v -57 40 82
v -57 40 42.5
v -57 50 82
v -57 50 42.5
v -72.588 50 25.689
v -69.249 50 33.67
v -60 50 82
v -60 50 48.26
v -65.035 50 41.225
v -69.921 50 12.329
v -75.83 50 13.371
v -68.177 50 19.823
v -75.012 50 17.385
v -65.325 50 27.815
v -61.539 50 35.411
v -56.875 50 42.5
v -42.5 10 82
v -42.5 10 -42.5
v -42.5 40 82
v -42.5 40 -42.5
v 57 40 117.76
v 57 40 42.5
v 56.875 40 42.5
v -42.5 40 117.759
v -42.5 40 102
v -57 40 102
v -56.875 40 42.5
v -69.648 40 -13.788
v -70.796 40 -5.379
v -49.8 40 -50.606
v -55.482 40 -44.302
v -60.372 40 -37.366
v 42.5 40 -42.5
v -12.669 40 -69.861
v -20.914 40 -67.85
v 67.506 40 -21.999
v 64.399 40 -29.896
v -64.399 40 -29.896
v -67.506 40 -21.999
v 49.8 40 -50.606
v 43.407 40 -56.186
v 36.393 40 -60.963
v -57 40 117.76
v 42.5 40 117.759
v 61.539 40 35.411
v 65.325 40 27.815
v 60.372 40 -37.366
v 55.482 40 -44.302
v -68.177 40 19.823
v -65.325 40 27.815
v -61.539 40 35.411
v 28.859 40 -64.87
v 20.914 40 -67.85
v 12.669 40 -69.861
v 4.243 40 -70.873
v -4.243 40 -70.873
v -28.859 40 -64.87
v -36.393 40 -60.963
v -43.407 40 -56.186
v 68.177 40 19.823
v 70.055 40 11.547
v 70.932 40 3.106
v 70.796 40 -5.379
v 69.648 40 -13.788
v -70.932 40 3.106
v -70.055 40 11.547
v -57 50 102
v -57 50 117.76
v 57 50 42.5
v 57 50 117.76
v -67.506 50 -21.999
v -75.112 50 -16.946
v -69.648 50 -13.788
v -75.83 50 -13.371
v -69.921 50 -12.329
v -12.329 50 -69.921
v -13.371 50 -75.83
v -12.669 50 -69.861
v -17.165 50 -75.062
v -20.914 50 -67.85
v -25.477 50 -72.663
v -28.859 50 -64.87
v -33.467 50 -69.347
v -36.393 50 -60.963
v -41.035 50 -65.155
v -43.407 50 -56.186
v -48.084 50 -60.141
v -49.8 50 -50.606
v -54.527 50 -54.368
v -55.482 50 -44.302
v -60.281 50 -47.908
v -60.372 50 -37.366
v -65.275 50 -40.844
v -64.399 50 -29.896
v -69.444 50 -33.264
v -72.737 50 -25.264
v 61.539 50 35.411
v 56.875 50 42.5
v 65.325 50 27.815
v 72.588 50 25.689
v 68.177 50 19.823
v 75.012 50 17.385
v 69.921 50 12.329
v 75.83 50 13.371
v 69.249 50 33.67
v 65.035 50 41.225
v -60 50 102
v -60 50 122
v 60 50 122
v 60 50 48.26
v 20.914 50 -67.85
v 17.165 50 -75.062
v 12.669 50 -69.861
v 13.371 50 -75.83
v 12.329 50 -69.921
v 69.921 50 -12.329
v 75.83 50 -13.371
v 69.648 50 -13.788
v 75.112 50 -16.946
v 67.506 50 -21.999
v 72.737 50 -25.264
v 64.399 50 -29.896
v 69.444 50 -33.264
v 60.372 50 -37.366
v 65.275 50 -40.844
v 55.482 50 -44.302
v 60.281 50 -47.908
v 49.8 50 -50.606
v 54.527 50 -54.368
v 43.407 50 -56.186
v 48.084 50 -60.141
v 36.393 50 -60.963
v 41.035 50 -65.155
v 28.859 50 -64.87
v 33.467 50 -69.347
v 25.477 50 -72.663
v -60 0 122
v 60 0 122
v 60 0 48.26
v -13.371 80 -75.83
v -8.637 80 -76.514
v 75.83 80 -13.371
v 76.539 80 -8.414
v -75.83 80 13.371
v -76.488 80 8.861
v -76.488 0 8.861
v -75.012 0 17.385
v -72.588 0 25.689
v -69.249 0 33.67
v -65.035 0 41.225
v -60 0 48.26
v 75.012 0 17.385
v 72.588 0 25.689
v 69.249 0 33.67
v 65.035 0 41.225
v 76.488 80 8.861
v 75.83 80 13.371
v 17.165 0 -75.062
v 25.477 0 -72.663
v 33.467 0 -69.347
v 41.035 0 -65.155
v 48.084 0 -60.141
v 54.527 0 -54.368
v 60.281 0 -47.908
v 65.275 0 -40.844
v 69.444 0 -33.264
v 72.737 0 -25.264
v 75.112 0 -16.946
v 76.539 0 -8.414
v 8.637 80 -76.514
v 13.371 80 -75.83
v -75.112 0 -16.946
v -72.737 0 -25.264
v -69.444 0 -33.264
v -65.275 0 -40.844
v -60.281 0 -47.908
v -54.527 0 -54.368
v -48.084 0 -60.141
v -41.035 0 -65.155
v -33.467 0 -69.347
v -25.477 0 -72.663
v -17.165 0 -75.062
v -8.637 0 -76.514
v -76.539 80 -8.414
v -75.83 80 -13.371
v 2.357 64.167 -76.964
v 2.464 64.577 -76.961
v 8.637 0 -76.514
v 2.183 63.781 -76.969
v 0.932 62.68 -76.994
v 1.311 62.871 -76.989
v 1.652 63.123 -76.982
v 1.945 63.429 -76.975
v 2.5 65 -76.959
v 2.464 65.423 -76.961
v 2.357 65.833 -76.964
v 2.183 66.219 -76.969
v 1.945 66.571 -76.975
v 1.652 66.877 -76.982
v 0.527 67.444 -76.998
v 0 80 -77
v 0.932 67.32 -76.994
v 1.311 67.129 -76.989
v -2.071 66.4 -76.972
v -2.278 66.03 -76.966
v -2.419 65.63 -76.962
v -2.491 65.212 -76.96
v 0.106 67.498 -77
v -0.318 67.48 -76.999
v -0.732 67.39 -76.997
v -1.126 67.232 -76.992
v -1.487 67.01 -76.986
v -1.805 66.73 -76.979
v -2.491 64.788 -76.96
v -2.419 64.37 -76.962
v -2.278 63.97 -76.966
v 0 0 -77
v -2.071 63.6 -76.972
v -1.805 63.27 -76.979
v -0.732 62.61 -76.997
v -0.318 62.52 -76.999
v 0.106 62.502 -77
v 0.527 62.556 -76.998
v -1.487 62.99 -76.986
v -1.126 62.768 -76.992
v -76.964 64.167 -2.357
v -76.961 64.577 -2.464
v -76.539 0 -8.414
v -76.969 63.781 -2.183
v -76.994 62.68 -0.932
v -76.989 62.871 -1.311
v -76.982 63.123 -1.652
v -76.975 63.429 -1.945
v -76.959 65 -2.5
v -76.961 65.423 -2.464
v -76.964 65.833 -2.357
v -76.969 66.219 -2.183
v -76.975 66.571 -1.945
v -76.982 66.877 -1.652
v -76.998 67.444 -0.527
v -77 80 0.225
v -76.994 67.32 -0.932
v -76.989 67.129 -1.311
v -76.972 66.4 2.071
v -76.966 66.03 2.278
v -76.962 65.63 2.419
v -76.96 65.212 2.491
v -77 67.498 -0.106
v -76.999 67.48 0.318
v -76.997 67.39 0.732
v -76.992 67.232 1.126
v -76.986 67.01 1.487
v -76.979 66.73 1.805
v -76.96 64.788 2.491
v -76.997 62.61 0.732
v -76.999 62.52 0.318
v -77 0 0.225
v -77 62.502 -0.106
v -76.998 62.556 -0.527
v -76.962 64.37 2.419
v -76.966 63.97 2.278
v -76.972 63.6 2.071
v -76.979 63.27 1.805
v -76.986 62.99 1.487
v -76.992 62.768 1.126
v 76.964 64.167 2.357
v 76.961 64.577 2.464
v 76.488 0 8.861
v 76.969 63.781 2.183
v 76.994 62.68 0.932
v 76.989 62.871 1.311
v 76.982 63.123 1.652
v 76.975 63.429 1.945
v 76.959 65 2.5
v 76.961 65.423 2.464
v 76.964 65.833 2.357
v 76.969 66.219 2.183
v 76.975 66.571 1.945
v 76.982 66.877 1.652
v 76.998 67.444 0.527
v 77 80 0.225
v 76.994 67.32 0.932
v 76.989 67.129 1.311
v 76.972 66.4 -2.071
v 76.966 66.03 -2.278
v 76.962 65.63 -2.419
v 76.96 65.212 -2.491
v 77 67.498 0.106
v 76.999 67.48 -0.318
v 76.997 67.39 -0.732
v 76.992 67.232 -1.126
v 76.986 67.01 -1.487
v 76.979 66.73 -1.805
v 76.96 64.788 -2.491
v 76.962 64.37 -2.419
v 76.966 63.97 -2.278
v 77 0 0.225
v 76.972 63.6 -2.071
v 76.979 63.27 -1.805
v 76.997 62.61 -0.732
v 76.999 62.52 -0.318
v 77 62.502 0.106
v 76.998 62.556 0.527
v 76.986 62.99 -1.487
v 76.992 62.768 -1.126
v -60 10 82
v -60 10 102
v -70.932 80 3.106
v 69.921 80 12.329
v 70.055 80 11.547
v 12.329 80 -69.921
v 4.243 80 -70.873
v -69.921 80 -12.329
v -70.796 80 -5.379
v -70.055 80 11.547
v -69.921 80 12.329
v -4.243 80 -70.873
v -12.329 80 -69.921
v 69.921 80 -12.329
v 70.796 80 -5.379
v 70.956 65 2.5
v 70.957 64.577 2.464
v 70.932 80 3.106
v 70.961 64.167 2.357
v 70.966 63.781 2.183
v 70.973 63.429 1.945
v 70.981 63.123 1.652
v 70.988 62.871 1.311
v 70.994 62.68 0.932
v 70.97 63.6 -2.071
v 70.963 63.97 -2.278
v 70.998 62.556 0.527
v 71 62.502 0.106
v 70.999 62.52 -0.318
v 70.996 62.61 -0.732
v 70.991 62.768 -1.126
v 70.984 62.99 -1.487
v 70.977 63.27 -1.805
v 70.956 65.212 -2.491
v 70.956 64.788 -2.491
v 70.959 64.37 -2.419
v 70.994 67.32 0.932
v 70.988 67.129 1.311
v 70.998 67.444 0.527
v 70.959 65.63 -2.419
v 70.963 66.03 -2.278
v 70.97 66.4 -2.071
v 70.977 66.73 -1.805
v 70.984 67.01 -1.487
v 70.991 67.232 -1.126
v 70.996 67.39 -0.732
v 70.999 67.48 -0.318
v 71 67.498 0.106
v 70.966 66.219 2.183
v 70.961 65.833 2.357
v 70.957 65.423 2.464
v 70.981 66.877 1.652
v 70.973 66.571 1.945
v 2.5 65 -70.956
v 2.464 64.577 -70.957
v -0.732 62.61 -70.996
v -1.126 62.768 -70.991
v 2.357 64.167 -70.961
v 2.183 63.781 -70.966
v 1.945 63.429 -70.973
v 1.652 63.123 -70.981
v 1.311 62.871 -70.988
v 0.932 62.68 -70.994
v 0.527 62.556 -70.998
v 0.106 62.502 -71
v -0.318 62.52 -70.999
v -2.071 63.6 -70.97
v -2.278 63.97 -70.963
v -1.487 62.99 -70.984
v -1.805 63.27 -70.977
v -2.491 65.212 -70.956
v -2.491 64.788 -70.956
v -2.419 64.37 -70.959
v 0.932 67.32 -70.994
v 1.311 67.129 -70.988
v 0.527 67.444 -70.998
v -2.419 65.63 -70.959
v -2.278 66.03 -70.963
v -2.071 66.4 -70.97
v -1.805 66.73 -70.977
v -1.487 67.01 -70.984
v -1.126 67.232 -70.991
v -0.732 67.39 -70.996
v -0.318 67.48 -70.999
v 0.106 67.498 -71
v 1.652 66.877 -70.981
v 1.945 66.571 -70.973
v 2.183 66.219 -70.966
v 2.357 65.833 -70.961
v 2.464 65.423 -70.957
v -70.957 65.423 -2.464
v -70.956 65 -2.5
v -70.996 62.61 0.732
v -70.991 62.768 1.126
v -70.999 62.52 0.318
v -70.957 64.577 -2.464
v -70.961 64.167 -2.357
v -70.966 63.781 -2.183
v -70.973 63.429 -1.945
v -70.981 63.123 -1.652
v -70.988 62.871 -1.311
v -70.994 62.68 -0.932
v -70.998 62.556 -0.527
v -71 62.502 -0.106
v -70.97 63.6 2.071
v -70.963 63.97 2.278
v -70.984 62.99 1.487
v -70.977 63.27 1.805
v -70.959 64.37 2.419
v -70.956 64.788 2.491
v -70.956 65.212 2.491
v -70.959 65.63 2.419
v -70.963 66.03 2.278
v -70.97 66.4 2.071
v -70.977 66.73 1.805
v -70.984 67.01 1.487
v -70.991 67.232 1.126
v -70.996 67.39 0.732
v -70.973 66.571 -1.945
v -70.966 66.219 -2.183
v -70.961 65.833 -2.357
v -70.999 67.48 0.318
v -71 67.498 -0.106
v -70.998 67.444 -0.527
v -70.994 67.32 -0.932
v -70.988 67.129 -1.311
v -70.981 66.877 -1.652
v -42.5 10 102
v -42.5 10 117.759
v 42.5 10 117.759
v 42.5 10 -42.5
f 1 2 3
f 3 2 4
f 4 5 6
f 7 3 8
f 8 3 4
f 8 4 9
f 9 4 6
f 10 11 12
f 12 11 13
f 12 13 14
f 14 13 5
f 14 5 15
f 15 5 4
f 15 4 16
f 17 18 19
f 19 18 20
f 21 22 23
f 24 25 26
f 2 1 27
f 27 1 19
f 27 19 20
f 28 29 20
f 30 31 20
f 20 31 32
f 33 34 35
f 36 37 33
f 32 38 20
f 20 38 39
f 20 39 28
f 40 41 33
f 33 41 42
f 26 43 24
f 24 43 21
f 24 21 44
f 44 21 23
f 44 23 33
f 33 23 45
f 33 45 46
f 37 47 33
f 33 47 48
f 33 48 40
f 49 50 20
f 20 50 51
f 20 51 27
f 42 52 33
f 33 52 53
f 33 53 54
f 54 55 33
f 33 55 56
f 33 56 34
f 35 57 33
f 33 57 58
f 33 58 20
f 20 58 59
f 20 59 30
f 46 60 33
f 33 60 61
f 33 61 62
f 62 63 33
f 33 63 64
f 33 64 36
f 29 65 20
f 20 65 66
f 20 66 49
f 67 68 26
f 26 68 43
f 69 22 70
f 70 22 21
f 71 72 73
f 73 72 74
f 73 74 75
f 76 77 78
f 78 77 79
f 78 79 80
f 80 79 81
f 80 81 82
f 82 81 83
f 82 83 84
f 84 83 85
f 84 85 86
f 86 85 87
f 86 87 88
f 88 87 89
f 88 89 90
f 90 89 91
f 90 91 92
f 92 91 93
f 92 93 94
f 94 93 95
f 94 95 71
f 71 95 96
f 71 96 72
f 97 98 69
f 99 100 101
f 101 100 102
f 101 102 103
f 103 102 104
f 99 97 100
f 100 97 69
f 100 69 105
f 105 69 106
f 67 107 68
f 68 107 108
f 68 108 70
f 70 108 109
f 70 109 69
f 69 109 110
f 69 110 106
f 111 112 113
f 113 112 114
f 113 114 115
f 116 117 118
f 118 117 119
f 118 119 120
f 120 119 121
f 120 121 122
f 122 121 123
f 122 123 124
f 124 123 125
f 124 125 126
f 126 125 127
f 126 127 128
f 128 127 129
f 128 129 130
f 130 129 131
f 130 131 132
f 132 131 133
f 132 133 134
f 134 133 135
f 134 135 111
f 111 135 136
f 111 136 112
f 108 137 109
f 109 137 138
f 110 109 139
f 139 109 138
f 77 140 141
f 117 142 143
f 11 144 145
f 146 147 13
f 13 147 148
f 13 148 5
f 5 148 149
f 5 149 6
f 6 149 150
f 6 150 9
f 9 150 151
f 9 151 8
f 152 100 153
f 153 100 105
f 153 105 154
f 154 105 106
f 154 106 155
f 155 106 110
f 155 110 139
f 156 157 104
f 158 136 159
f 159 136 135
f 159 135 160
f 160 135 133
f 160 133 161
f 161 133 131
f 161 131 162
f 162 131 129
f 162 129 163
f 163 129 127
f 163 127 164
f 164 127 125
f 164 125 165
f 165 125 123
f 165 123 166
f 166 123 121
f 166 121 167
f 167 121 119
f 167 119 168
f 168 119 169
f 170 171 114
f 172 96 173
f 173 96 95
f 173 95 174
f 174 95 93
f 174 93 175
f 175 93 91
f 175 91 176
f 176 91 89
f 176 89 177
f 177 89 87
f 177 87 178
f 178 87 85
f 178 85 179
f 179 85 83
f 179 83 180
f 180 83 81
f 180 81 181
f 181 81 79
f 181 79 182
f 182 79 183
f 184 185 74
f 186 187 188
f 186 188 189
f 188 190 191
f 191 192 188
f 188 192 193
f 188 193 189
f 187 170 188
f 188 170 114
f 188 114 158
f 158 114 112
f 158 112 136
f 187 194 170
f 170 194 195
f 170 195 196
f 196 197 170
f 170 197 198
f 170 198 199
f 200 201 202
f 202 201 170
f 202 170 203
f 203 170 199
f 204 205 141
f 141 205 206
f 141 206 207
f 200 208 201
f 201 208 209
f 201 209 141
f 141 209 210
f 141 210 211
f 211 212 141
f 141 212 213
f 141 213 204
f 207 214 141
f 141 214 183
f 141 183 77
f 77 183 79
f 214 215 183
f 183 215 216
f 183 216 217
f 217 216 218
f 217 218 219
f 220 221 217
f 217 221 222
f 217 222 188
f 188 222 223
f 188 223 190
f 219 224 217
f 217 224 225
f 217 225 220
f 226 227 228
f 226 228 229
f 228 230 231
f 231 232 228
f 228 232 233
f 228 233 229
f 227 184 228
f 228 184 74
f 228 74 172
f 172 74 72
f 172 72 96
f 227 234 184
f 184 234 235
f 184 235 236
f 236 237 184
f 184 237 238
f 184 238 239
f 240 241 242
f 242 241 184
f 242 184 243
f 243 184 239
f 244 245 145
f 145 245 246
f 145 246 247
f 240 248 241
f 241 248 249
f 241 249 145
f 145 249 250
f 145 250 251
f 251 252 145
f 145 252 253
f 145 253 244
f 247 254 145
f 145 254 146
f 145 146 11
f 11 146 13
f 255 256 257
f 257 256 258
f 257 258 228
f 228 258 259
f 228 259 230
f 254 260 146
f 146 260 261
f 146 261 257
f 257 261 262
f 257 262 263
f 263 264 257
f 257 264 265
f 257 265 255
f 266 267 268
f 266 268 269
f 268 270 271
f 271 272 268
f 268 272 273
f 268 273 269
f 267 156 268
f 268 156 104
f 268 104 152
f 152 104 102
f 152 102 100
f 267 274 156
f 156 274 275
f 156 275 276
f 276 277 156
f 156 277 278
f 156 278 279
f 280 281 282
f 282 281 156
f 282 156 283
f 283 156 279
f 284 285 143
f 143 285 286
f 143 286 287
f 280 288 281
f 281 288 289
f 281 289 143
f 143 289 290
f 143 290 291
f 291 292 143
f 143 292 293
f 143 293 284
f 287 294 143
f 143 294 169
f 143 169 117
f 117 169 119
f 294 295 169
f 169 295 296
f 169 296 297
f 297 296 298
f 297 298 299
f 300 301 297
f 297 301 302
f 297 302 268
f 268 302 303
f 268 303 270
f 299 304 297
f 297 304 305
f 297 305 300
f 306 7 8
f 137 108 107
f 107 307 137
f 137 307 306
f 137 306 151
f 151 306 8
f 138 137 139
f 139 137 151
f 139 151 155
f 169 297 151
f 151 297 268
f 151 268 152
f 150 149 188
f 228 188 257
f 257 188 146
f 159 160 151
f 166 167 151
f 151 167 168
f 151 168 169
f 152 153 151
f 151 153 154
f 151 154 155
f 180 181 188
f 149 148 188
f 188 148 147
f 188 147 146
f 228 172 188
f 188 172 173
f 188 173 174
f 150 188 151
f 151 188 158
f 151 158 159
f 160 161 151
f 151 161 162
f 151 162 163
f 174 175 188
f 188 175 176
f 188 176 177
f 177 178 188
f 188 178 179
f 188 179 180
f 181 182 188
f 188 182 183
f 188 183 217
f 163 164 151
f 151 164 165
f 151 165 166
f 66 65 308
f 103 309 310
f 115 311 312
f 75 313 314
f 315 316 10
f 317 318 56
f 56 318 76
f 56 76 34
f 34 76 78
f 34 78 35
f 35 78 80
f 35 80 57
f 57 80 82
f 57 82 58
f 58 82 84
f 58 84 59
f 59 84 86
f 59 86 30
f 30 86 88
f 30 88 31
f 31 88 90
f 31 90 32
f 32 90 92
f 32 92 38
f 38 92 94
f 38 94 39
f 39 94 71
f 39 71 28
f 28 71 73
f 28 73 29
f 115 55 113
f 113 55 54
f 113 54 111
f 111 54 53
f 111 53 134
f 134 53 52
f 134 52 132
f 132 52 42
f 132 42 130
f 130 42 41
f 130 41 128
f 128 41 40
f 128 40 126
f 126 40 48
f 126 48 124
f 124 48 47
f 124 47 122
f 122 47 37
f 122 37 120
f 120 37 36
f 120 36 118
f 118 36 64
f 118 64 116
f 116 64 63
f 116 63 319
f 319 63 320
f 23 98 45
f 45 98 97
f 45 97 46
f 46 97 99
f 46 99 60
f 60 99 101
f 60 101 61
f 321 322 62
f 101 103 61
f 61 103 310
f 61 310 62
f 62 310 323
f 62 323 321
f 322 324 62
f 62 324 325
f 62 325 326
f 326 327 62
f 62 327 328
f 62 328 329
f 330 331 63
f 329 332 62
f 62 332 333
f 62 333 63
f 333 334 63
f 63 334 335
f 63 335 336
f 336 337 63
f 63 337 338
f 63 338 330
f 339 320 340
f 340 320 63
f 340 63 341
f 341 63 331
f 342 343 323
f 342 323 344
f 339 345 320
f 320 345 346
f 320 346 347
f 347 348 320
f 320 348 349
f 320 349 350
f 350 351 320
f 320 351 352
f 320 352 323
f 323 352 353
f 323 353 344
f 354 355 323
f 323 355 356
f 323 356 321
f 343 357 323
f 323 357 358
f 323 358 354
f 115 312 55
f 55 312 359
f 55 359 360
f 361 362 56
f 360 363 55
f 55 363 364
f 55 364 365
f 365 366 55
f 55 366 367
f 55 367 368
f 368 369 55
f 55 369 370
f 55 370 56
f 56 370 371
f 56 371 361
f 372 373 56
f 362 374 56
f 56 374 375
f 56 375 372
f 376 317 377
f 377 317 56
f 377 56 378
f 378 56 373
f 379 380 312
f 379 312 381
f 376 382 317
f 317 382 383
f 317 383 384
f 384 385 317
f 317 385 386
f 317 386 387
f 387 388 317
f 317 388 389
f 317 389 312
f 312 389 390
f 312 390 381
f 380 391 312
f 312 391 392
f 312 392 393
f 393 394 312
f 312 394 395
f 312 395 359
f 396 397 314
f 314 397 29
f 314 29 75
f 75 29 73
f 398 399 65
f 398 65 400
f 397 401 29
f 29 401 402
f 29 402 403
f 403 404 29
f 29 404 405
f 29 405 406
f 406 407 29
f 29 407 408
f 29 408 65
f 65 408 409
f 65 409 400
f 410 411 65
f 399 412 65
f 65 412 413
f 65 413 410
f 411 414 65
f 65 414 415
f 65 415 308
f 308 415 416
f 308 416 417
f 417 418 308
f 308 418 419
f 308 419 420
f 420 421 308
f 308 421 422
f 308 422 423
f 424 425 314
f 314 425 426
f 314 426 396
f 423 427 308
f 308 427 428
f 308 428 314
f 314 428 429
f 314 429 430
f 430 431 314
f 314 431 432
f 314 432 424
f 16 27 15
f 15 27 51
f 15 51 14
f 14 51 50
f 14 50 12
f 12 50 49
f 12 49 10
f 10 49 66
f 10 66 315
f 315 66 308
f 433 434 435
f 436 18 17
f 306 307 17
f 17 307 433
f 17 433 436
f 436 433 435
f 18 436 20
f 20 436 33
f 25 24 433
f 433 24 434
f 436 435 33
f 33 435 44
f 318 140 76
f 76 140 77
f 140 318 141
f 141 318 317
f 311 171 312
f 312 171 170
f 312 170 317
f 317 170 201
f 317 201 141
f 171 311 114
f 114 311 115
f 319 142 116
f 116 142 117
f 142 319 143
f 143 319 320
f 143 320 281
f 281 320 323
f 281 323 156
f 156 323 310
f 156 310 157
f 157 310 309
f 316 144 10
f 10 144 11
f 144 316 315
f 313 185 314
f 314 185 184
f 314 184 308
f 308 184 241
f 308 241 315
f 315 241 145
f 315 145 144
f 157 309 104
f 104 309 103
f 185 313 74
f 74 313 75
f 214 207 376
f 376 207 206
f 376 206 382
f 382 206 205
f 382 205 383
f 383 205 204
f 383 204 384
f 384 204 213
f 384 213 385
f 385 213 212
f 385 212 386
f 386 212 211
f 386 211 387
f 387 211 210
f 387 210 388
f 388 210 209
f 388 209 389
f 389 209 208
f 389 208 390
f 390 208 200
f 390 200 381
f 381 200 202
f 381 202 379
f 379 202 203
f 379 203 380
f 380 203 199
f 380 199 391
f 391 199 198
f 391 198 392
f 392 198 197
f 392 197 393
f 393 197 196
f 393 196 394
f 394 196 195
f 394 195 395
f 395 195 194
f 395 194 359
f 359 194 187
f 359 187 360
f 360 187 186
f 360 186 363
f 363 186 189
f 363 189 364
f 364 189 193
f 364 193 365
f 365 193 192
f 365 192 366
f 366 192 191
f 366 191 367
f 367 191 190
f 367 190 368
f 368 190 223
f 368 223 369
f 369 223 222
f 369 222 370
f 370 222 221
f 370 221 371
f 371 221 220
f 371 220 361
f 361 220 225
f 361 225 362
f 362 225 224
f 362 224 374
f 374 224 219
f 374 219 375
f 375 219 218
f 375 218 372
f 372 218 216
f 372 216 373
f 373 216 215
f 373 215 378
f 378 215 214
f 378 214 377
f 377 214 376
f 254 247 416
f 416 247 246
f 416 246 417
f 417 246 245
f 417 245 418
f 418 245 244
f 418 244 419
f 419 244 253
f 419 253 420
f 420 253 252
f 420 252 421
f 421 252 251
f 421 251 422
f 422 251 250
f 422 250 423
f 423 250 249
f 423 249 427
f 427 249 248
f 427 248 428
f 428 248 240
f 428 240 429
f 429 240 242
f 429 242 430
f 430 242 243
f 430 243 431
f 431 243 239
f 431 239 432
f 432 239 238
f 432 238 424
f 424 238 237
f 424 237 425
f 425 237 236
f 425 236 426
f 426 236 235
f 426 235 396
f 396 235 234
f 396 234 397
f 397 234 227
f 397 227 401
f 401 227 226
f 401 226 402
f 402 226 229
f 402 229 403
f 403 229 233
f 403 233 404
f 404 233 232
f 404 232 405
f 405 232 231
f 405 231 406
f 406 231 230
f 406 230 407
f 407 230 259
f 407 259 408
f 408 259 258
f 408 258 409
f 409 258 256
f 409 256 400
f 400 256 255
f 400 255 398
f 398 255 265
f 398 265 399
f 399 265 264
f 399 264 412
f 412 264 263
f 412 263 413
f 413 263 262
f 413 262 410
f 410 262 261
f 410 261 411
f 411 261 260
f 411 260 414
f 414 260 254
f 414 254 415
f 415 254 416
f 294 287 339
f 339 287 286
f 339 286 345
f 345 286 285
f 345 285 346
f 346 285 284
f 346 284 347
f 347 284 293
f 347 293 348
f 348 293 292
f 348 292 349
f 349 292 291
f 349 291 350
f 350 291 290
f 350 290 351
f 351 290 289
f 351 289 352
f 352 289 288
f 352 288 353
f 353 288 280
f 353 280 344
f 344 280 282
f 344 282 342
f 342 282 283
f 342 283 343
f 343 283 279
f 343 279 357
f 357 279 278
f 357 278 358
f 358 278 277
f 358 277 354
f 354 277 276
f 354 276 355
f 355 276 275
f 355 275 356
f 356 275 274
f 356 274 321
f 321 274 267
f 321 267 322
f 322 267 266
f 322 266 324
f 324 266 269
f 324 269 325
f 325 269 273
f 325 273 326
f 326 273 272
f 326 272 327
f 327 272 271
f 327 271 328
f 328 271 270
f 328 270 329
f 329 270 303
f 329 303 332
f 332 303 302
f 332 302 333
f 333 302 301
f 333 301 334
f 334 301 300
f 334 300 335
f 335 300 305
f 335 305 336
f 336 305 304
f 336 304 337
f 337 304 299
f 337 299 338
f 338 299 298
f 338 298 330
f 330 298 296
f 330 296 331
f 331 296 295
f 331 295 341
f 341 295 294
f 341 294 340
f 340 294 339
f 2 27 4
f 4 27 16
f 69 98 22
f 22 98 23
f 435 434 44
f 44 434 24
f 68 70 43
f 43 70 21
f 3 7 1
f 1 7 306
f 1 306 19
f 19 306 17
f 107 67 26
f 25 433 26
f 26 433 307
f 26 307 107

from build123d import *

# Parameters (mm, degrees)
EXTRUDE_1_DEPTH                 = 50
SKETCH_2_W                      = 85
SKETCH_2_H                      = 85
CUT_EXTRUDE_1_DEPTH             = 40
SKETCH_3_R                      = 71
CUT_EXTRUDE_2_DEPTH             = 10
EXTRUDE_2_DEPTH                 = 30
PATTERN_CIRCULAR_1_COUNT        = 4
PATTERN_CIRCULAR_1_COPY_1_DEPTH = 30
PATTERN_CIRCULAR_1_COPY_2_DEPTH = 30
SKETCH_8_R                      = 2.5
CUT_EXTRUDE_3_DEPTH             = 30
PATTERN_CIRCULAR_2_COUNT        = 4
CUT_EXTRUDE_4_DEPTH             = 10
SKETCH_10_W                     = 85
SKETCH_10_H                     = 75.258890594
CUT_EXTRUDE_6_DEPTH             = 30
SKETCH_11_W                     = 114
SKETCH_11_H                     = 4.24
EXTRUDE_3_DEPTH                 = 10
SKETCH_12_W                     = 40
SKETCH_12_H                     = 20
CUT_EXTRUDE_7_DEPTH             = 40


with BuildPart() as part:
    # Эскиз1 → Бобышка-Вытянуть1 (new body)
    with BuildSketch(Plane(origin=(0, 0, 0), x_dir=(1, 0, 0), z_dir=(0, 1, 0))):
        with BuildLine():
            Line((-60, -74.613885), (-60, -48.259714048))
            ThreePointArc((-60, -48.259714048), (0, 77), (60, -48.259714048))
            Line((60, -48.259714048), (60, -74.613885))
            Line((60, -74.613885), (60, -122))
            Line((60, -122), (-60, -122))
            Line((-60, -122), (-60, -74.613885))
        make_face()
    extrude(amount=EXTRUDE_1_DEPTH)

    # Эскиз2 → Вырез-Вытянуть1 (cut)
    with BuildSketch(Plane(origin=(0, 50, 0), x_dir=(1, 0, 0), z_dir=(0, 1, 0))):
        Rectangle(SKETCH_2_W, SKETCH_2_H)
    extrude(amount=-CUT_EXTRUDE_1_DEPTH, mode=Mode.SUBTRACT)

    # Эскиз3 → Вырез-Вытянуть2 (cut)
    with BuildSketch(Plane(origin=(0, 50, 0), x_dir=(1, 0, 0), z_dir=(0, 1, 0))):
        Circle(SKETCH_3_R)
    extrude(amount=-CUT_EXTRUDE_2_DEPTH, mode=Mode.SUBTRACT)

    # Эскиз4 → Бобышка-Вытянуть2 (add)
    with BuildSketch(Plane(origin=(0, 50, 0), x_dir=(1, 0, 0), z_dir=(0, 1, 0))):
        with BuildLine():
            Line((0, 71), (0, 77))
            ThreePointArc((0, 77), (-6.710992192, 76.706991753), (-13.37090968, 75.830196982))
            Line((-13.37090968, 75.830196982), (-12.329020614, 69.921350464))
            ThreePointArc((-12.329020614, 69.921350464), (-6.188057735, 70.729823565), (0, 71))
        make_face()
    extrude_2 = extrude(amount=EXTRUDE_2_DEPTH)

    # Зеркальное отражение1: Бобышка-Вытянуть2 across plane
    add(extrude_2.mirror(Plane(origin=(0, 0, 0), x_dir=(0, 0, 1), z_dir=(1, 0, 0))))

    # Круговой массив1: Бобышка-Вытянуть2 ×4 about axis, 1 skipped
    pattern_circular_1_axis = Axis((0, 0, 0), (0, 1, 0))
    add([extrude_2.rotate(pattern_circular_1_axis, i * 360 / PATTERN_CIRCULAR_1_COUNT) for i in range(1, PATTERN_CIRCULAR_1_COUNT) if i not in (2,)])

    # Круговой массив1 copy 1 sketch → Круговой массив1 copy 1 (add)
    with BuildSketch(Plane.ZX.offset(50)):
        with BuildLine():
            Line((0, -71), (0, -77))
            ThreePointArc((0, -77), (-6.710992192, -76.706991753), (-13.37090968, -75.830196982))
            Line((-13.37090968, -75.830196982), (-12.329020614, -69.921350464))
            ThreePointArc((-12.329020614, -69.921350464), (-6.188057735, -70.729823565), (0, -71))
        make_face()
    extrude(amount=PATTERN_CIRCULAR_1_COPY_1_DEPTH)

    # Круговой массив1 copy 2 sketch → Круговой массив1 copy 2 (add)
    with BuildSketch(Plane(origin=(0, 50, 0), x_dir=(0, 0, -1), z_dir=(0, 1, 0))):
        with BuildLine():
            Line((0, -71), (0, -77))
            ThreePointArc((0, -77), (-6.710992192, -76.706991753), (-13.37090968, -75.830196982))
            Line((-13.37090968, -75.830196982), (-12.329020614, -69.921350464))
            ThreePointArc((-12.329020614, -69.921350464), (-6.188057735, -70.729823565), (0, -71))
        make_face()
    extrude(amount=PATTERN_CIRCULAR_1_COPY_2_DEPTH)

    # Эскиз8 → Вырез-Вытянуть3 (cut)
    with BuildSketch(Plane.XY.offset(-70)):
        with Locations((0, 65)):
            Circle(SKETCH_8_R)
    cut_extrude_3 = extrude(amount=-CUT_EXTRUDE_3_DEPTH, mode=Mode.SUBTRACT)

    # Круговой массив2: Вырез-Вытянуть3 ×4 about axis
    pattern_circular_2_axis = Axis((0, 0, 0), (0, 1, 0))
    for i in range(1, PATTERN_CIRCULAR_2_COUNT):
        add(cut_extrude_3.rotate(pattern_circular_2_axis, i * 360 / PATTERN_CIRCULAR_2_COUNT), mode=Mode.SUBTRACT)

    # Эскиз9 → Вырез-Вытянуть4 (cut)
    with BuildSketch(Plane(origin=(0, 50, 0), x_dir=(1, 0, 0), z_dir=(0, 1, 0))):
        Polygon((-57, -68), (-57, -42.5), (57, -42.5), (57, -124), (-57, -124), align=None)
    extrude(amount=-CUT_EXTRUDE_4_DEPTH, mode=Mode.SUBTRACT)

    # Эскиз10 → Вырез-Вытянуть6 (cut)
    with BuildSketch(Plane(origin=(0, 40, 0), x_dir=(1, 0, 0), z_dir=(0, 1, 0))):
        with Locations((0, -80.129445297)):
            Rectangle(SKETCH_10_W, SKETCH_10_H)
    extrude(amount=-CUT_EXTRUDE_6_DEPTH, mode=Mode.SUBTRACT)

    # Эскиз11 → Бобышка-Вытянуть3 (add)
    with BuildSketch(Plane(origin=(0, 40, 0), x_dir=(1, 0, 0), z_dir=(0, 1, 0))):
        with Locations((0, -119.88)):
            Rectangle(SKETCH_11_W, SKETCH_11_H)
    extrude(amount=EXTRUDE_3_DEPTH)

    # Эскиз12 → Вырез-Вытянуть7 (cut)
    with BuildSketch(Plane(origin=(0, 50, 0), x_dir=(1, 0, 0), z_dir=(0, 1, 0))):
        with Locations((-56.627991745, -92)):
            Rectangle(SKETCH_12_W, SKETCH_12_H)
    extrude(amount=-CUT_EXTRUDE_7_DEPTH, mode=Mode.SUBTRACT)


solid = part.part
